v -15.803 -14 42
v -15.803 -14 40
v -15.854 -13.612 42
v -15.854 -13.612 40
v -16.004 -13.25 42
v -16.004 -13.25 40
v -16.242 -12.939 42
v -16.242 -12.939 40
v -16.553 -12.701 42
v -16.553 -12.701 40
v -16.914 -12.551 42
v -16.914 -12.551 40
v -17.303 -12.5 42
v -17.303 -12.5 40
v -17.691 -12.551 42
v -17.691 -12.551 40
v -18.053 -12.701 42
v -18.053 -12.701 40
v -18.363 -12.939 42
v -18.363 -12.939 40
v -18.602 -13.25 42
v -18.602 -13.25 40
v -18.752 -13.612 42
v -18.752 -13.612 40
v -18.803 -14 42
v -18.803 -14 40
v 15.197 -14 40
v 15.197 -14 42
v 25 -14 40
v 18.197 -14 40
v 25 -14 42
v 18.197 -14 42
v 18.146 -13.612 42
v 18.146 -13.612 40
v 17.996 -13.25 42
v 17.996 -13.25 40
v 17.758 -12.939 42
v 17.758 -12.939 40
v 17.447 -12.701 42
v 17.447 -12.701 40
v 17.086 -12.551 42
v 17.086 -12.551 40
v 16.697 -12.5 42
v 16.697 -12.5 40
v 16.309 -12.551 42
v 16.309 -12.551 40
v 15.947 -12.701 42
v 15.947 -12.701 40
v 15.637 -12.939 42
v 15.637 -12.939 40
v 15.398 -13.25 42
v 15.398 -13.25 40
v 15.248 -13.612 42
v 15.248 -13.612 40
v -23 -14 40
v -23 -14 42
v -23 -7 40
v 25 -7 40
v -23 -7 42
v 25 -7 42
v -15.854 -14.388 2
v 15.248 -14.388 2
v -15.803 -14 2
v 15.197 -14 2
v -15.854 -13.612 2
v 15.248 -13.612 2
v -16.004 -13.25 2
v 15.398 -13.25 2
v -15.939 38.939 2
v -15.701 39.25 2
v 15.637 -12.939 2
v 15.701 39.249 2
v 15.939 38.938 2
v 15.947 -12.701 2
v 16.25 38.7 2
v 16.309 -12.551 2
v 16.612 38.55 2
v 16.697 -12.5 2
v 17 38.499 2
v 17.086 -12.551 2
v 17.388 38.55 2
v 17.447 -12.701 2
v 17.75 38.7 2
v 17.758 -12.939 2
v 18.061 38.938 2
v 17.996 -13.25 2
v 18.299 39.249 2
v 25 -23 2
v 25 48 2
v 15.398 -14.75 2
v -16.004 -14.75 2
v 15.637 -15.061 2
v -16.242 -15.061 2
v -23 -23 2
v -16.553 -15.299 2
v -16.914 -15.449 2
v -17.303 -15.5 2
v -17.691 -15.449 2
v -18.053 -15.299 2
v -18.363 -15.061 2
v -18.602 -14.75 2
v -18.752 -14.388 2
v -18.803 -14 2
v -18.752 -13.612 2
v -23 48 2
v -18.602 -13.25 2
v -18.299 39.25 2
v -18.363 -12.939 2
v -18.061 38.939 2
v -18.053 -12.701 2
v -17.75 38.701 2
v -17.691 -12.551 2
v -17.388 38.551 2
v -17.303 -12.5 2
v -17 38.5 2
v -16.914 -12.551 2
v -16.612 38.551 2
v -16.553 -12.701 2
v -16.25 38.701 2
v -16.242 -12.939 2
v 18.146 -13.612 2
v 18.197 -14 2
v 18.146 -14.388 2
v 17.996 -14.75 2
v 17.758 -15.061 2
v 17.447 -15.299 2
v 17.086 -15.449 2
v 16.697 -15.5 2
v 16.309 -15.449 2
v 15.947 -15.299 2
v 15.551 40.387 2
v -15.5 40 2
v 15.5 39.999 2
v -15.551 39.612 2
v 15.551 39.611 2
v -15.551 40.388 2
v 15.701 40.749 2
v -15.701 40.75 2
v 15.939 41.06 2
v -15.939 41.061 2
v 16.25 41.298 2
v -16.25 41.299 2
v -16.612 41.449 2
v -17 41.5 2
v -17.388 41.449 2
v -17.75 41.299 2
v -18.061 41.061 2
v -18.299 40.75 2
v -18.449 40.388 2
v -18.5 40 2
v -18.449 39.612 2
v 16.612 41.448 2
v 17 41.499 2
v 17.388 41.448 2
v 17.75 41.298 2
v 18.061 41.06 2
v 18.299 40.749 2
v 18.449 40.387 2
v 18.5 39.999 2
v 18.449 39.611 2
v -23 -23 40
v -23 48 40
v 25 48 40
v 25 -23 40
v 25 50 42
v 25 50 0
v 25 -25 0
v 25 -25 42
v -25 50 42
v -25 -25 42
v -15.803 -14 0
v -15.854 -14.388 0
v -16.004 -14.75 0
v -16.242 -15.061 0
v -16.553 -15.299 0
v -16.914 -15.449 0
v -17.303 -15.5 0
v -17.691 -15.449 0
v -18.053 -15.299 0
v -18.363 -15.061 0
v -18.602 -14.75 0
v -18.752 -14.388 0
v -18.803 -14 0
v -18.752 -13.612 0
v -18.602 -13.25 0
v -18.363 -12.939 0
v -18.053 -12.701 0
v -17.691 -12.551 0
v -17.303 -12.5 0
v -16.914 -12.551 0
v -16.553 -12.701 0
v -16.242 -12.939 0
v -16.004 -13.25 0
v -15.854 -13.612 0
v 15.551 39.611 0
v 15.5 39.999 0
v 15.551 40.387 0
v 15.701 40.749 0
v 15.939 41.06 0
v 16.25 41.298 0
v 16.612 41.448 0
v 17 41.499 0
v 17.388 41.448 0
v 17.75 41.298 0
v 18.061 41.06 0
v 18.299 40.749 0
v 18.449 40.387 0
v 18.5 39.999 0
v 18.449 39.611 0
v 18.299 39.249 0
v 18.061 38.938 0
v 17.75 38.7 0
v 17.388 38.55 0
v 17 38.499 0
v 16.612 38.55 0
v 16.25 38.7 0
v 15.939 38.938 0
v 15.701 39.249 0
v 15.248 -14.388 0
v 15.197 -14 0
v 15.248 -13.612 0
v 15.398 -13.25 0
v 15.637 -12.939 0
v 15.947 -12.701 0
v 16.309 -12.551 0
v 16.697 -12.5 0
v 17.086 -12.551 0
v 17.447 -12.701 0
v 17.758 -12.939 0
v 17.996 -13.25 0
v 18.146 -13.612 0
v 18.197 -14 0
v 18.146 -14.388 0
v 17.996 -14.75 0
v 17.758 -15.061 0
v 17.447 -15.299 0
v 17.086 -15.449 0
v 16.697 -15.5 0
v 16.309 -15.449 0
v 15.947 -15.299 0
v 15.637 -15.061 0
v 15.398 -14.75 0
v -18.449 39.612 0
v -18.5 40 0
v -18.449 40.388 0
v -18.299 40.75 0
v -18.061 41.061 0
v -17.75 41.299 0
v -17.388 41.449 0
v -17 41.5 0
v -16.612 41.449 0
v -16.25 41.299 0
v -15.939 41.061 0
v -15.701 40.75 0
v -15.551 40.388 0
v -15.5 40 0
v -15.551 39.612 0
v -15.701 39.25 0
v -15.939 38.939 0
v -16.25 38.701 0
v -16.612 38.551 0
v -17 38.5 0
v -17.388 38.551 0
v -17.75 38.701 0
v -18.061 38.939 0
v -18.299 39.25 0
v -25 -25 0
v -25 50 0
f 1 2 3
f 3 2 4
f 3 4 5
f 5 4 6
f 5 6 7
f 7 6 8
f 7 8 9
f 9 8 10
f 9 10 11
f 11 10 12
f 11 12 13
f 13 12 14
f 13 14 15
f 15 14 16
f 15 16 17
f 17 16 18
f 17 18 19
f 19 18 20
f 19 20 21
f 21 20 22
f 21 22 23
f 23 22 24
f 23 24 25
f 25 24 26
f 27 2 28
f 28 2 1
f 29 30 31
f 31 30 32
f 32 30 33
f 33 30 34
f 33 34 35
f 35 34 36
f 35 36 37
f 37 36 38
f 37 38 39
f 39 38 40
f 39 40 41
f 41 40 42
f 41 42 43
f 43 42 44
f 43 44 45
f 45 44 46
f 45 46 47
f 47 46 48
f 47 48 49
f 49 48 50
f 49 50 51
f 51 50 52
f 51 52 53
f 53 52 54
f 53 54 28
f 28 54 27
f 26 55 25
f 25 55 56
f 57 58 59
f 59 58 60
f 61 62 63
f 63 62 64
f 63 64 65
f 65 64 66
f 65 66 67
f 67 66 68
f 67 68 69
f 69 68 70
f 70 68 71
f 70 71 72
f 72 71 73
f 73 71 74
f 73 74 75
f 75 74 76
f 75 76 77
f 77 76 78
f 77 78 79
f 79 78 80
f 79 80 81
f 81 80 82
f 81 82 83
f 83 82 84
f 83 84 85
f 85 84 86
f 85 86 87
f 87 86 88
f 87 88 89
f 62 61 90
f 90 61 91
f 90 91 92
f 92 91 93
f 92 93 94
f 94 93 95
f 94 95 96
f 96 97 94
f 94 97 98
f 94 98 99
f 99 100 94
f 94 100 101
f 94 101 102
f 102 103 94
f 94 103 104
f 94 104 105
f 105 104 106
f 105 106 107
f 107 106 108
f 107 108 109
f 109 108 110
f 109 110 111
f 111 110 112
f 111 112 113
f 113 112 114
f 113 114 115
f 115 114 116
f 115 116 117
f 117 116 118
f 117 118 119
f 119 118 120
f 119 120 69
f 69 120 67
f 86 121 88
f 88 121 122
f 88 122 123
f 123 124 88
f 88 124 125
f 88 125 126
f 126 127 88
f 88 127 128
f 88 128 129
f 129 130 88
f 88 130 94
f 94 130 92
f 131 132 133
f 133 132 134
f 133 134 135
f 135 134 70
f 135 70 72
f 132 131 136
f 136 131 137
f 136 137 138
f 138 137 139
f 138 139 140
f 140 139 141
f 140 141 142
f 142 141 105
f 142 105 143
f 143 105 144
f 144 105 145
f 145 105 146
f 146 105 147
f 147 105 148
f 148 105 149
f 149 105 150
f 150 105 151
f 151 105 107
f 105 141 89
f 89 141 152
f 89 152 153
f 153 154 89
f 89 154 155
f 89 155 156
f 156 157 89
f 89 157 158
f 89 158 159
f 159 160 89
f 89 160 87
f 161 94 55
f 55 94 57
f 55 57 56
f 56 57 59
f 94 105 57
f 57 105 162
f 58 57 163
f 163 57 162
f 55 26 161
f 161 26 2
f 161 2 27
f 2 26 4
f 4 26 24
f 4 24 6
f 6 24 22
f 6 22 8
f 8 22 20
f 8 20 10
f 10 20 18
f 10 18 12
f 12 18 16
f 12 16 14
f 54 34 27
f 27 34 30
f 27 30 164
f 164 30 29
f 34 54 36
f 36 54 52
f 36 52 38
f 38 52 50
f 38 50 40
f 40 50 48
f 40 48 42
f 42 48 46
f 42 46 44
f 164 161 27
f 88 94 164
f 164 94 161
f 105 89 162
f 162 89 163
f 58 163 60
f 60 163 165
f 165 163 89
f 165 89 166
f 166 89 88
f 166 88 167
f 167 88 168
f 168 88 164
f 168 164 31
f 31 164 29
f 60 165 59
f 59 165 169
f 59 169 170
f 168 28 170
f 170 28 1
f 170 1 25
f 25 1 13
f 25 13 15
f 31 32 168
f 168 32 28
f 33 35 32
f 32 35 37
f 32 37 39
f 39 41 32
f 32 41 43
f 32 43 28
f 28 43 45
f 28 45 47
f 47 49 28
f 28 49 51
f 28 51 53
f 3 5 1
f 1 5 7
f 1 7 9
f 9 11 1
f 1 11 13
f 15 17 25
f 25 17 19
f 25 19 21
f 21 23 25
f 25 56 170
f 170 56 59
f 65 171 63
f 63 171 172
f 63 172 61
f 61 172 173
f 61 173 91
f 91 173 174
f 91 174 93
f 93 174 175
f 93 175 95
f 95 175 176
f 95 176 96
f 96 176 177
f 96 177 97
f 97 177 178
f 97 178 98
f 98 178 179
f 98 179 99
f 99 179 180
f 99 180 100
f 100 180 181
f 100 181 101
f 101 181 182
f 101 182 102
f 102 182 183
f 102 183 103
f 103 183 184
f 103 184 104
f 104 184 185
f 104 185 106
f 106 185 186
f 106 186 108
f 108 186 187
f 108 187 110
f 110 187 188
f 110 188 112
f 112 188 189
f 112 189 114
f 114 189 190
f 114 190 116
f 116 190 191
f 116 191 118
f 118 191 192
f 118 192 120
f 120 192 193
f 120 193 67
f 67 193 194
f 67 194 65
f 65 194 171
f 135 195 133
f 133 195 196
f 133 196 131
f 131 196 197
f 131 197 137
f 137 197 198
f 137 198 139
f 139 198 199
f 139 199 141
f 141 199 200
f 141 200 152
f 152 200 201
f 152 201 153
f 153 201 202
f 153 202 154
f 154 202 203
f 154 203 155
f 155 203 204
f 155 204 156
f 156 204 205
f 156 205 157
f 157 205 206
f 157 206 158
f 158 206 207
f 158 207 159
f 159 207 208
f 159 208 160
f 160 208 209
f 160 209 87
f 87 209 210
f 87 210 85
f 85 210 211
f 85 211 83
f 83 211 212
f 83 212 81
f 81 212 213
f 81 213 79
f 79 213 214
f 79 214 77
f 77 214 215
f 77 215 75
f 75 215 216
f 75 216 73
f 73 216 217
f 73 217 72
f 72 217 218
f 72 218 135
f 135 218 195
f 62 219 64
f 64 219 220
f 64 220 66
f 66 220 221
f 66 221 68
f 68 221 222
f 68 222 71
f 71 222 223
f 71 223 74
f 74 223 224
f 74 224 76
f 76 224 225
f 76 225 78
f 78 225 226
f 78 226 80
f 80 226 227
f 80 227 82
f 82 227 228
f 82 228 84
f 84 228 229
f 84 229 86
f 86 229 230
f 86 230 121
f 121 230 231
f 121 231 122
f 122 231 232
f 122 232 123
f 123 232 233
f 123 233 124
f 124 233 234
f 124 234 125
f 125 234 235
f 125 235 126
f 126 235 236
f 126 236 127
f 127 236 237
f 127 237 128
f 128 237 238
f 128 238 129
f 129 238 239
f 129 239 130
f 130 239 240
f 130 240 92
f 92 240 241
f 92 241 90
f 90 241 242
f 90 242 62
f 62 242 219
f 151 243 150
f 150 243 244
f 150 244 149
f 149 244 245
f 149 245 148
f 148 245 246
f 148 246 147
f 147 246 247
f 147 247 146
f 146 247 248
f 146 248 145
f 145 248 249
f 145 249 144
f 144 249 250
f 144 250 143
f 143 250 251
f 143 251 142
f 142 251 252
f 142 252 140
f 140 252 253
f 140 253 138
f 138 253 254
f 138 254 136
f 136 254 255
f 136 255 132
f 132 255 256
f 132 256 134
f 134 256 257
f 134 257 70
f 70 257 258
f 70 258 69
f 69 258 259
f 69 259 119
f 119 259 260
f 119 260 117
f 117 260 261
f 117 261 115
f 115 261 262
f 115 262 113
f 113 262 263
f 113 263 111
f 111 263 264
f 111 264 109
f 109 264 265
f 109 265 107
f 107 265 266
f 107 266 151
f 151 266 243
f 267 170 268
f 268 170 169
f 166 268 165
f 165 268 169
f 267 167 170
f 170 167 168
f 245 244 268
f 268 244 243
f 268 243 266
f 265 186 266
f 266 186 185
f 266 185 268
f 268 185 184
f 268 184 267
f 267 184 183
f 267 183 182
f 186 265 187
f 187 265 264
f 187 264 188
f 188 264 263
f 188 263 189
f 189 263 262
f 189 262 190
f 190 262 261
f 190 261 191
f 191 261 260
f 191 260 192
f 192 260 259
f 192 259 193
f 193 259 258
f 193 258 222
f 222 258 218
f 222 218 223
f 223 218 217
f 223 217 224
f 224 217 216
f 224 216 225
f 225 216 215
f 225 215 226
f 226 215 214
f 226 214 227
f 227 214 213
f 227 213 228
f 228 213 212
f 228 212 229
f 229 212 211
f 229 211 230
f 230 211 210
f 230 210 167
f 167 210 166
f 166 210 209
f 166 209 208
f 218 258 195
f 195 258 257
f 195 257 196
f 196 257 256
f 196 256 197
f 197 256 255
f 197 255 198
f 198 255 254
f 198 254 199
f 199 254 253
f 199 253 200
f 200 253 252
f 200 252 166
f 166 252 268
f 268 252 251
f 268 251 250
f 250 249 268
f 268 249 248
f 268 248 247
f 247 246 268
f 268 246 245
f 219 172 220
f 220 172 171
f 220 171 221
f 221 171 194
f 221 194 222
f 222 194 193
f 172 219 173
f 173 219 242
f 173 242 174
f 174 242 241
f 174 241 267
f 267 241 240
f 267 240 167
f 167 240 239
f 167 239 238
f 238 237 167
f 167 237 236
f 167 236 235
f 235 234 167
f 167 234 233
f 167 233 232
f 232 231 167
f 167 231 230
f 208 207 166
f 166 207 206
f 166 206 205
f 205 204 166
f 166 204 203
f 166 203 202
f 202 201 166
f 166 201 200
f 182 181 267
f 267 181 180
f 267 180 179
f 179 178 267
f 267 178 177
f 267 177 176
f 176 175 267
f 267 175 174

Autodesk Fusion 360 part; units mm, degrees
sketch "Sketch1" plane through (0, 0, 0) normal (0, 0, 1) x (1, 0, 0)
  line L0 (-25, 50) -> (25, 50)
  line L1 (25, 50) -> (25, -25)
  line L2 (25, -25) -> (-25, -25)
  line L3 (-25, -25) -> (-25, 50)
  circle A0 centre (-17.3027, -14) radius 1.5
  circle A1 centre (16.6973, -14) radius 1.5
  circle A2 centre (-17, 40) radius 1.5
  circle A3 centre (17, 39.9992) radius 1.5
  dimension "d1" = 3
  dimension "d2" = 3
  dimension "d4" = 34
  dimension "d5" = 3
  dimension "d6" = 54
  dimension "d7" = 3
  dimension "d9" = 34
  dimension "d10" = 54
extrude "Extrude1" add sketch "Sketch1" along normal blind 2 makes body 1
ref_plane "WorkPlane1" through (0, 12.5, 3) normal (0, 0, 1) x (1, 0, 0)
ref_plane "WorkPlane2" through (0, 12.5, 42) normal (0, 0, 1) x (1, 0, 0)
sketch "Sketch4" plane through (0, 0, 42) normal (0, 0, 1) x (1, 0, 0)
sketch "Sketch5" plane through (0, 0, 42) normal (0, 0, 1) x (1, 0, 0)
  line L0 (25, -25) -> (-25, -25)
  line L1 (-25, -25) -> (-25, 50)
  line L2 (-25, 50) -> (25, 50)
  line L3 (25, 50) -> (25, -25)
extrude "Extrude2" add sketch "Sketch5" against normal blind 2 separate body makes body 2
sketch "Sketch6" plane through (0, 0, 2) normal (0, 0, 1) x (-1, 0, 0)
  circle A0 centre (17, -40) radius 1.5
  circle A1 centre (-16.6973, 14) radius 1.5
  circle A2 centre (-17, -39.9992) radius 1.5
  circle A3 centre (17.3027, 14) radius 1.5
  line L0 (25, 25) -> (-25, 25)
  line L1 (-25, 25) -> (-25, -50)
  line L2 (-25, -50) -> (25, -50)
  line L3 (25, -50) -> (25, 25)
  line L4 (25, -50) -> (23, -50)
  line L5 (23, -50) -> (23, 25)
  line L6 (23, 25) -> (25, 25)
  line L7 (25, 25) -> (25, -50)
extrude "Extrude3" add sketch "Sketch6" along normal blind 39 contours L0 L2 L3 L4 L5 L6 L7 bodies 1 2
sketch "Sketch7" plane through (0, 0, 2) normal (0, 0, 1) x (-1, 0, 0)
  line L0 (23, -50) -> (23, 25)
  line L1 (23, 25) -> (-25, 25)
  line L2 (-25, 25) -> (-25, -50)
  line L3 (-25, -50) -> (23, -50)
  circle A0 centre (17.3027, 14) radius 1.5
  circle A1 centre (-17, -39.9992) radius 1.5
  circle A2 centre (-16.6973, 14) radius 1.5
  circle A3 centre (17, -40) radius 1.5
  line L4 (23, 25) -> (-25, 25)
  line L5 (-25, 25) -> (-25, 23)
  line L6 (-25, 23) -> (23, 23)
  line L7 (23, 23) -> (23, 25)
  line L8 (23, -50) -> (-25, -50)
  line L9 (-25, -50) -> (-25, -48)
  line L10 (-25, -48) -> (23, -48)
  line L11 (23, -48) -> (23, -50)
extrude "Extrude4" add sketch "Sketch7" along normal blind 38 contours L0 L2 L3 L8 L9 L10 L11 bodies 1
extrude "Extrude5" add sketch "Sketch7" along normal blind 38 contours L0 L1 L2 L4 L5 L6 L7 bodies 1
sketch "Sketch8" plane through (0, 0, 2) normal (0, 0, 1) x (-1, 0, 0)
  line L0 (23, 23) -> (-25, 23)
  line L1 (-25, 23) -> (-25, -48)
  line L2 (-25, -48) -> (23, -48)
  line L3 (23, -48) -> (23, 23)
  circle A0 centre (17, -40) radius 1.5
  circle A1 centre (-16.6973, 14) radius 1.5
  circle A2 centre (-17, -39.9992) radius 1.5
  circle A3 centre (17.3027, 14) radius 1.5
  line L4 (23, 14) -> (-25, 14)
  line L5 (-25, 14) -> (-25, 7)
  line L6 (-25, 7) -> (23, 7)
  line L7 (23, 7) -> (23, 14)
extrude "Extrude6" cut sketch "Sketch8" along normal blind 48 contours L1 L3 A1 A3 L4 L5 L6 L7 bodies 1
